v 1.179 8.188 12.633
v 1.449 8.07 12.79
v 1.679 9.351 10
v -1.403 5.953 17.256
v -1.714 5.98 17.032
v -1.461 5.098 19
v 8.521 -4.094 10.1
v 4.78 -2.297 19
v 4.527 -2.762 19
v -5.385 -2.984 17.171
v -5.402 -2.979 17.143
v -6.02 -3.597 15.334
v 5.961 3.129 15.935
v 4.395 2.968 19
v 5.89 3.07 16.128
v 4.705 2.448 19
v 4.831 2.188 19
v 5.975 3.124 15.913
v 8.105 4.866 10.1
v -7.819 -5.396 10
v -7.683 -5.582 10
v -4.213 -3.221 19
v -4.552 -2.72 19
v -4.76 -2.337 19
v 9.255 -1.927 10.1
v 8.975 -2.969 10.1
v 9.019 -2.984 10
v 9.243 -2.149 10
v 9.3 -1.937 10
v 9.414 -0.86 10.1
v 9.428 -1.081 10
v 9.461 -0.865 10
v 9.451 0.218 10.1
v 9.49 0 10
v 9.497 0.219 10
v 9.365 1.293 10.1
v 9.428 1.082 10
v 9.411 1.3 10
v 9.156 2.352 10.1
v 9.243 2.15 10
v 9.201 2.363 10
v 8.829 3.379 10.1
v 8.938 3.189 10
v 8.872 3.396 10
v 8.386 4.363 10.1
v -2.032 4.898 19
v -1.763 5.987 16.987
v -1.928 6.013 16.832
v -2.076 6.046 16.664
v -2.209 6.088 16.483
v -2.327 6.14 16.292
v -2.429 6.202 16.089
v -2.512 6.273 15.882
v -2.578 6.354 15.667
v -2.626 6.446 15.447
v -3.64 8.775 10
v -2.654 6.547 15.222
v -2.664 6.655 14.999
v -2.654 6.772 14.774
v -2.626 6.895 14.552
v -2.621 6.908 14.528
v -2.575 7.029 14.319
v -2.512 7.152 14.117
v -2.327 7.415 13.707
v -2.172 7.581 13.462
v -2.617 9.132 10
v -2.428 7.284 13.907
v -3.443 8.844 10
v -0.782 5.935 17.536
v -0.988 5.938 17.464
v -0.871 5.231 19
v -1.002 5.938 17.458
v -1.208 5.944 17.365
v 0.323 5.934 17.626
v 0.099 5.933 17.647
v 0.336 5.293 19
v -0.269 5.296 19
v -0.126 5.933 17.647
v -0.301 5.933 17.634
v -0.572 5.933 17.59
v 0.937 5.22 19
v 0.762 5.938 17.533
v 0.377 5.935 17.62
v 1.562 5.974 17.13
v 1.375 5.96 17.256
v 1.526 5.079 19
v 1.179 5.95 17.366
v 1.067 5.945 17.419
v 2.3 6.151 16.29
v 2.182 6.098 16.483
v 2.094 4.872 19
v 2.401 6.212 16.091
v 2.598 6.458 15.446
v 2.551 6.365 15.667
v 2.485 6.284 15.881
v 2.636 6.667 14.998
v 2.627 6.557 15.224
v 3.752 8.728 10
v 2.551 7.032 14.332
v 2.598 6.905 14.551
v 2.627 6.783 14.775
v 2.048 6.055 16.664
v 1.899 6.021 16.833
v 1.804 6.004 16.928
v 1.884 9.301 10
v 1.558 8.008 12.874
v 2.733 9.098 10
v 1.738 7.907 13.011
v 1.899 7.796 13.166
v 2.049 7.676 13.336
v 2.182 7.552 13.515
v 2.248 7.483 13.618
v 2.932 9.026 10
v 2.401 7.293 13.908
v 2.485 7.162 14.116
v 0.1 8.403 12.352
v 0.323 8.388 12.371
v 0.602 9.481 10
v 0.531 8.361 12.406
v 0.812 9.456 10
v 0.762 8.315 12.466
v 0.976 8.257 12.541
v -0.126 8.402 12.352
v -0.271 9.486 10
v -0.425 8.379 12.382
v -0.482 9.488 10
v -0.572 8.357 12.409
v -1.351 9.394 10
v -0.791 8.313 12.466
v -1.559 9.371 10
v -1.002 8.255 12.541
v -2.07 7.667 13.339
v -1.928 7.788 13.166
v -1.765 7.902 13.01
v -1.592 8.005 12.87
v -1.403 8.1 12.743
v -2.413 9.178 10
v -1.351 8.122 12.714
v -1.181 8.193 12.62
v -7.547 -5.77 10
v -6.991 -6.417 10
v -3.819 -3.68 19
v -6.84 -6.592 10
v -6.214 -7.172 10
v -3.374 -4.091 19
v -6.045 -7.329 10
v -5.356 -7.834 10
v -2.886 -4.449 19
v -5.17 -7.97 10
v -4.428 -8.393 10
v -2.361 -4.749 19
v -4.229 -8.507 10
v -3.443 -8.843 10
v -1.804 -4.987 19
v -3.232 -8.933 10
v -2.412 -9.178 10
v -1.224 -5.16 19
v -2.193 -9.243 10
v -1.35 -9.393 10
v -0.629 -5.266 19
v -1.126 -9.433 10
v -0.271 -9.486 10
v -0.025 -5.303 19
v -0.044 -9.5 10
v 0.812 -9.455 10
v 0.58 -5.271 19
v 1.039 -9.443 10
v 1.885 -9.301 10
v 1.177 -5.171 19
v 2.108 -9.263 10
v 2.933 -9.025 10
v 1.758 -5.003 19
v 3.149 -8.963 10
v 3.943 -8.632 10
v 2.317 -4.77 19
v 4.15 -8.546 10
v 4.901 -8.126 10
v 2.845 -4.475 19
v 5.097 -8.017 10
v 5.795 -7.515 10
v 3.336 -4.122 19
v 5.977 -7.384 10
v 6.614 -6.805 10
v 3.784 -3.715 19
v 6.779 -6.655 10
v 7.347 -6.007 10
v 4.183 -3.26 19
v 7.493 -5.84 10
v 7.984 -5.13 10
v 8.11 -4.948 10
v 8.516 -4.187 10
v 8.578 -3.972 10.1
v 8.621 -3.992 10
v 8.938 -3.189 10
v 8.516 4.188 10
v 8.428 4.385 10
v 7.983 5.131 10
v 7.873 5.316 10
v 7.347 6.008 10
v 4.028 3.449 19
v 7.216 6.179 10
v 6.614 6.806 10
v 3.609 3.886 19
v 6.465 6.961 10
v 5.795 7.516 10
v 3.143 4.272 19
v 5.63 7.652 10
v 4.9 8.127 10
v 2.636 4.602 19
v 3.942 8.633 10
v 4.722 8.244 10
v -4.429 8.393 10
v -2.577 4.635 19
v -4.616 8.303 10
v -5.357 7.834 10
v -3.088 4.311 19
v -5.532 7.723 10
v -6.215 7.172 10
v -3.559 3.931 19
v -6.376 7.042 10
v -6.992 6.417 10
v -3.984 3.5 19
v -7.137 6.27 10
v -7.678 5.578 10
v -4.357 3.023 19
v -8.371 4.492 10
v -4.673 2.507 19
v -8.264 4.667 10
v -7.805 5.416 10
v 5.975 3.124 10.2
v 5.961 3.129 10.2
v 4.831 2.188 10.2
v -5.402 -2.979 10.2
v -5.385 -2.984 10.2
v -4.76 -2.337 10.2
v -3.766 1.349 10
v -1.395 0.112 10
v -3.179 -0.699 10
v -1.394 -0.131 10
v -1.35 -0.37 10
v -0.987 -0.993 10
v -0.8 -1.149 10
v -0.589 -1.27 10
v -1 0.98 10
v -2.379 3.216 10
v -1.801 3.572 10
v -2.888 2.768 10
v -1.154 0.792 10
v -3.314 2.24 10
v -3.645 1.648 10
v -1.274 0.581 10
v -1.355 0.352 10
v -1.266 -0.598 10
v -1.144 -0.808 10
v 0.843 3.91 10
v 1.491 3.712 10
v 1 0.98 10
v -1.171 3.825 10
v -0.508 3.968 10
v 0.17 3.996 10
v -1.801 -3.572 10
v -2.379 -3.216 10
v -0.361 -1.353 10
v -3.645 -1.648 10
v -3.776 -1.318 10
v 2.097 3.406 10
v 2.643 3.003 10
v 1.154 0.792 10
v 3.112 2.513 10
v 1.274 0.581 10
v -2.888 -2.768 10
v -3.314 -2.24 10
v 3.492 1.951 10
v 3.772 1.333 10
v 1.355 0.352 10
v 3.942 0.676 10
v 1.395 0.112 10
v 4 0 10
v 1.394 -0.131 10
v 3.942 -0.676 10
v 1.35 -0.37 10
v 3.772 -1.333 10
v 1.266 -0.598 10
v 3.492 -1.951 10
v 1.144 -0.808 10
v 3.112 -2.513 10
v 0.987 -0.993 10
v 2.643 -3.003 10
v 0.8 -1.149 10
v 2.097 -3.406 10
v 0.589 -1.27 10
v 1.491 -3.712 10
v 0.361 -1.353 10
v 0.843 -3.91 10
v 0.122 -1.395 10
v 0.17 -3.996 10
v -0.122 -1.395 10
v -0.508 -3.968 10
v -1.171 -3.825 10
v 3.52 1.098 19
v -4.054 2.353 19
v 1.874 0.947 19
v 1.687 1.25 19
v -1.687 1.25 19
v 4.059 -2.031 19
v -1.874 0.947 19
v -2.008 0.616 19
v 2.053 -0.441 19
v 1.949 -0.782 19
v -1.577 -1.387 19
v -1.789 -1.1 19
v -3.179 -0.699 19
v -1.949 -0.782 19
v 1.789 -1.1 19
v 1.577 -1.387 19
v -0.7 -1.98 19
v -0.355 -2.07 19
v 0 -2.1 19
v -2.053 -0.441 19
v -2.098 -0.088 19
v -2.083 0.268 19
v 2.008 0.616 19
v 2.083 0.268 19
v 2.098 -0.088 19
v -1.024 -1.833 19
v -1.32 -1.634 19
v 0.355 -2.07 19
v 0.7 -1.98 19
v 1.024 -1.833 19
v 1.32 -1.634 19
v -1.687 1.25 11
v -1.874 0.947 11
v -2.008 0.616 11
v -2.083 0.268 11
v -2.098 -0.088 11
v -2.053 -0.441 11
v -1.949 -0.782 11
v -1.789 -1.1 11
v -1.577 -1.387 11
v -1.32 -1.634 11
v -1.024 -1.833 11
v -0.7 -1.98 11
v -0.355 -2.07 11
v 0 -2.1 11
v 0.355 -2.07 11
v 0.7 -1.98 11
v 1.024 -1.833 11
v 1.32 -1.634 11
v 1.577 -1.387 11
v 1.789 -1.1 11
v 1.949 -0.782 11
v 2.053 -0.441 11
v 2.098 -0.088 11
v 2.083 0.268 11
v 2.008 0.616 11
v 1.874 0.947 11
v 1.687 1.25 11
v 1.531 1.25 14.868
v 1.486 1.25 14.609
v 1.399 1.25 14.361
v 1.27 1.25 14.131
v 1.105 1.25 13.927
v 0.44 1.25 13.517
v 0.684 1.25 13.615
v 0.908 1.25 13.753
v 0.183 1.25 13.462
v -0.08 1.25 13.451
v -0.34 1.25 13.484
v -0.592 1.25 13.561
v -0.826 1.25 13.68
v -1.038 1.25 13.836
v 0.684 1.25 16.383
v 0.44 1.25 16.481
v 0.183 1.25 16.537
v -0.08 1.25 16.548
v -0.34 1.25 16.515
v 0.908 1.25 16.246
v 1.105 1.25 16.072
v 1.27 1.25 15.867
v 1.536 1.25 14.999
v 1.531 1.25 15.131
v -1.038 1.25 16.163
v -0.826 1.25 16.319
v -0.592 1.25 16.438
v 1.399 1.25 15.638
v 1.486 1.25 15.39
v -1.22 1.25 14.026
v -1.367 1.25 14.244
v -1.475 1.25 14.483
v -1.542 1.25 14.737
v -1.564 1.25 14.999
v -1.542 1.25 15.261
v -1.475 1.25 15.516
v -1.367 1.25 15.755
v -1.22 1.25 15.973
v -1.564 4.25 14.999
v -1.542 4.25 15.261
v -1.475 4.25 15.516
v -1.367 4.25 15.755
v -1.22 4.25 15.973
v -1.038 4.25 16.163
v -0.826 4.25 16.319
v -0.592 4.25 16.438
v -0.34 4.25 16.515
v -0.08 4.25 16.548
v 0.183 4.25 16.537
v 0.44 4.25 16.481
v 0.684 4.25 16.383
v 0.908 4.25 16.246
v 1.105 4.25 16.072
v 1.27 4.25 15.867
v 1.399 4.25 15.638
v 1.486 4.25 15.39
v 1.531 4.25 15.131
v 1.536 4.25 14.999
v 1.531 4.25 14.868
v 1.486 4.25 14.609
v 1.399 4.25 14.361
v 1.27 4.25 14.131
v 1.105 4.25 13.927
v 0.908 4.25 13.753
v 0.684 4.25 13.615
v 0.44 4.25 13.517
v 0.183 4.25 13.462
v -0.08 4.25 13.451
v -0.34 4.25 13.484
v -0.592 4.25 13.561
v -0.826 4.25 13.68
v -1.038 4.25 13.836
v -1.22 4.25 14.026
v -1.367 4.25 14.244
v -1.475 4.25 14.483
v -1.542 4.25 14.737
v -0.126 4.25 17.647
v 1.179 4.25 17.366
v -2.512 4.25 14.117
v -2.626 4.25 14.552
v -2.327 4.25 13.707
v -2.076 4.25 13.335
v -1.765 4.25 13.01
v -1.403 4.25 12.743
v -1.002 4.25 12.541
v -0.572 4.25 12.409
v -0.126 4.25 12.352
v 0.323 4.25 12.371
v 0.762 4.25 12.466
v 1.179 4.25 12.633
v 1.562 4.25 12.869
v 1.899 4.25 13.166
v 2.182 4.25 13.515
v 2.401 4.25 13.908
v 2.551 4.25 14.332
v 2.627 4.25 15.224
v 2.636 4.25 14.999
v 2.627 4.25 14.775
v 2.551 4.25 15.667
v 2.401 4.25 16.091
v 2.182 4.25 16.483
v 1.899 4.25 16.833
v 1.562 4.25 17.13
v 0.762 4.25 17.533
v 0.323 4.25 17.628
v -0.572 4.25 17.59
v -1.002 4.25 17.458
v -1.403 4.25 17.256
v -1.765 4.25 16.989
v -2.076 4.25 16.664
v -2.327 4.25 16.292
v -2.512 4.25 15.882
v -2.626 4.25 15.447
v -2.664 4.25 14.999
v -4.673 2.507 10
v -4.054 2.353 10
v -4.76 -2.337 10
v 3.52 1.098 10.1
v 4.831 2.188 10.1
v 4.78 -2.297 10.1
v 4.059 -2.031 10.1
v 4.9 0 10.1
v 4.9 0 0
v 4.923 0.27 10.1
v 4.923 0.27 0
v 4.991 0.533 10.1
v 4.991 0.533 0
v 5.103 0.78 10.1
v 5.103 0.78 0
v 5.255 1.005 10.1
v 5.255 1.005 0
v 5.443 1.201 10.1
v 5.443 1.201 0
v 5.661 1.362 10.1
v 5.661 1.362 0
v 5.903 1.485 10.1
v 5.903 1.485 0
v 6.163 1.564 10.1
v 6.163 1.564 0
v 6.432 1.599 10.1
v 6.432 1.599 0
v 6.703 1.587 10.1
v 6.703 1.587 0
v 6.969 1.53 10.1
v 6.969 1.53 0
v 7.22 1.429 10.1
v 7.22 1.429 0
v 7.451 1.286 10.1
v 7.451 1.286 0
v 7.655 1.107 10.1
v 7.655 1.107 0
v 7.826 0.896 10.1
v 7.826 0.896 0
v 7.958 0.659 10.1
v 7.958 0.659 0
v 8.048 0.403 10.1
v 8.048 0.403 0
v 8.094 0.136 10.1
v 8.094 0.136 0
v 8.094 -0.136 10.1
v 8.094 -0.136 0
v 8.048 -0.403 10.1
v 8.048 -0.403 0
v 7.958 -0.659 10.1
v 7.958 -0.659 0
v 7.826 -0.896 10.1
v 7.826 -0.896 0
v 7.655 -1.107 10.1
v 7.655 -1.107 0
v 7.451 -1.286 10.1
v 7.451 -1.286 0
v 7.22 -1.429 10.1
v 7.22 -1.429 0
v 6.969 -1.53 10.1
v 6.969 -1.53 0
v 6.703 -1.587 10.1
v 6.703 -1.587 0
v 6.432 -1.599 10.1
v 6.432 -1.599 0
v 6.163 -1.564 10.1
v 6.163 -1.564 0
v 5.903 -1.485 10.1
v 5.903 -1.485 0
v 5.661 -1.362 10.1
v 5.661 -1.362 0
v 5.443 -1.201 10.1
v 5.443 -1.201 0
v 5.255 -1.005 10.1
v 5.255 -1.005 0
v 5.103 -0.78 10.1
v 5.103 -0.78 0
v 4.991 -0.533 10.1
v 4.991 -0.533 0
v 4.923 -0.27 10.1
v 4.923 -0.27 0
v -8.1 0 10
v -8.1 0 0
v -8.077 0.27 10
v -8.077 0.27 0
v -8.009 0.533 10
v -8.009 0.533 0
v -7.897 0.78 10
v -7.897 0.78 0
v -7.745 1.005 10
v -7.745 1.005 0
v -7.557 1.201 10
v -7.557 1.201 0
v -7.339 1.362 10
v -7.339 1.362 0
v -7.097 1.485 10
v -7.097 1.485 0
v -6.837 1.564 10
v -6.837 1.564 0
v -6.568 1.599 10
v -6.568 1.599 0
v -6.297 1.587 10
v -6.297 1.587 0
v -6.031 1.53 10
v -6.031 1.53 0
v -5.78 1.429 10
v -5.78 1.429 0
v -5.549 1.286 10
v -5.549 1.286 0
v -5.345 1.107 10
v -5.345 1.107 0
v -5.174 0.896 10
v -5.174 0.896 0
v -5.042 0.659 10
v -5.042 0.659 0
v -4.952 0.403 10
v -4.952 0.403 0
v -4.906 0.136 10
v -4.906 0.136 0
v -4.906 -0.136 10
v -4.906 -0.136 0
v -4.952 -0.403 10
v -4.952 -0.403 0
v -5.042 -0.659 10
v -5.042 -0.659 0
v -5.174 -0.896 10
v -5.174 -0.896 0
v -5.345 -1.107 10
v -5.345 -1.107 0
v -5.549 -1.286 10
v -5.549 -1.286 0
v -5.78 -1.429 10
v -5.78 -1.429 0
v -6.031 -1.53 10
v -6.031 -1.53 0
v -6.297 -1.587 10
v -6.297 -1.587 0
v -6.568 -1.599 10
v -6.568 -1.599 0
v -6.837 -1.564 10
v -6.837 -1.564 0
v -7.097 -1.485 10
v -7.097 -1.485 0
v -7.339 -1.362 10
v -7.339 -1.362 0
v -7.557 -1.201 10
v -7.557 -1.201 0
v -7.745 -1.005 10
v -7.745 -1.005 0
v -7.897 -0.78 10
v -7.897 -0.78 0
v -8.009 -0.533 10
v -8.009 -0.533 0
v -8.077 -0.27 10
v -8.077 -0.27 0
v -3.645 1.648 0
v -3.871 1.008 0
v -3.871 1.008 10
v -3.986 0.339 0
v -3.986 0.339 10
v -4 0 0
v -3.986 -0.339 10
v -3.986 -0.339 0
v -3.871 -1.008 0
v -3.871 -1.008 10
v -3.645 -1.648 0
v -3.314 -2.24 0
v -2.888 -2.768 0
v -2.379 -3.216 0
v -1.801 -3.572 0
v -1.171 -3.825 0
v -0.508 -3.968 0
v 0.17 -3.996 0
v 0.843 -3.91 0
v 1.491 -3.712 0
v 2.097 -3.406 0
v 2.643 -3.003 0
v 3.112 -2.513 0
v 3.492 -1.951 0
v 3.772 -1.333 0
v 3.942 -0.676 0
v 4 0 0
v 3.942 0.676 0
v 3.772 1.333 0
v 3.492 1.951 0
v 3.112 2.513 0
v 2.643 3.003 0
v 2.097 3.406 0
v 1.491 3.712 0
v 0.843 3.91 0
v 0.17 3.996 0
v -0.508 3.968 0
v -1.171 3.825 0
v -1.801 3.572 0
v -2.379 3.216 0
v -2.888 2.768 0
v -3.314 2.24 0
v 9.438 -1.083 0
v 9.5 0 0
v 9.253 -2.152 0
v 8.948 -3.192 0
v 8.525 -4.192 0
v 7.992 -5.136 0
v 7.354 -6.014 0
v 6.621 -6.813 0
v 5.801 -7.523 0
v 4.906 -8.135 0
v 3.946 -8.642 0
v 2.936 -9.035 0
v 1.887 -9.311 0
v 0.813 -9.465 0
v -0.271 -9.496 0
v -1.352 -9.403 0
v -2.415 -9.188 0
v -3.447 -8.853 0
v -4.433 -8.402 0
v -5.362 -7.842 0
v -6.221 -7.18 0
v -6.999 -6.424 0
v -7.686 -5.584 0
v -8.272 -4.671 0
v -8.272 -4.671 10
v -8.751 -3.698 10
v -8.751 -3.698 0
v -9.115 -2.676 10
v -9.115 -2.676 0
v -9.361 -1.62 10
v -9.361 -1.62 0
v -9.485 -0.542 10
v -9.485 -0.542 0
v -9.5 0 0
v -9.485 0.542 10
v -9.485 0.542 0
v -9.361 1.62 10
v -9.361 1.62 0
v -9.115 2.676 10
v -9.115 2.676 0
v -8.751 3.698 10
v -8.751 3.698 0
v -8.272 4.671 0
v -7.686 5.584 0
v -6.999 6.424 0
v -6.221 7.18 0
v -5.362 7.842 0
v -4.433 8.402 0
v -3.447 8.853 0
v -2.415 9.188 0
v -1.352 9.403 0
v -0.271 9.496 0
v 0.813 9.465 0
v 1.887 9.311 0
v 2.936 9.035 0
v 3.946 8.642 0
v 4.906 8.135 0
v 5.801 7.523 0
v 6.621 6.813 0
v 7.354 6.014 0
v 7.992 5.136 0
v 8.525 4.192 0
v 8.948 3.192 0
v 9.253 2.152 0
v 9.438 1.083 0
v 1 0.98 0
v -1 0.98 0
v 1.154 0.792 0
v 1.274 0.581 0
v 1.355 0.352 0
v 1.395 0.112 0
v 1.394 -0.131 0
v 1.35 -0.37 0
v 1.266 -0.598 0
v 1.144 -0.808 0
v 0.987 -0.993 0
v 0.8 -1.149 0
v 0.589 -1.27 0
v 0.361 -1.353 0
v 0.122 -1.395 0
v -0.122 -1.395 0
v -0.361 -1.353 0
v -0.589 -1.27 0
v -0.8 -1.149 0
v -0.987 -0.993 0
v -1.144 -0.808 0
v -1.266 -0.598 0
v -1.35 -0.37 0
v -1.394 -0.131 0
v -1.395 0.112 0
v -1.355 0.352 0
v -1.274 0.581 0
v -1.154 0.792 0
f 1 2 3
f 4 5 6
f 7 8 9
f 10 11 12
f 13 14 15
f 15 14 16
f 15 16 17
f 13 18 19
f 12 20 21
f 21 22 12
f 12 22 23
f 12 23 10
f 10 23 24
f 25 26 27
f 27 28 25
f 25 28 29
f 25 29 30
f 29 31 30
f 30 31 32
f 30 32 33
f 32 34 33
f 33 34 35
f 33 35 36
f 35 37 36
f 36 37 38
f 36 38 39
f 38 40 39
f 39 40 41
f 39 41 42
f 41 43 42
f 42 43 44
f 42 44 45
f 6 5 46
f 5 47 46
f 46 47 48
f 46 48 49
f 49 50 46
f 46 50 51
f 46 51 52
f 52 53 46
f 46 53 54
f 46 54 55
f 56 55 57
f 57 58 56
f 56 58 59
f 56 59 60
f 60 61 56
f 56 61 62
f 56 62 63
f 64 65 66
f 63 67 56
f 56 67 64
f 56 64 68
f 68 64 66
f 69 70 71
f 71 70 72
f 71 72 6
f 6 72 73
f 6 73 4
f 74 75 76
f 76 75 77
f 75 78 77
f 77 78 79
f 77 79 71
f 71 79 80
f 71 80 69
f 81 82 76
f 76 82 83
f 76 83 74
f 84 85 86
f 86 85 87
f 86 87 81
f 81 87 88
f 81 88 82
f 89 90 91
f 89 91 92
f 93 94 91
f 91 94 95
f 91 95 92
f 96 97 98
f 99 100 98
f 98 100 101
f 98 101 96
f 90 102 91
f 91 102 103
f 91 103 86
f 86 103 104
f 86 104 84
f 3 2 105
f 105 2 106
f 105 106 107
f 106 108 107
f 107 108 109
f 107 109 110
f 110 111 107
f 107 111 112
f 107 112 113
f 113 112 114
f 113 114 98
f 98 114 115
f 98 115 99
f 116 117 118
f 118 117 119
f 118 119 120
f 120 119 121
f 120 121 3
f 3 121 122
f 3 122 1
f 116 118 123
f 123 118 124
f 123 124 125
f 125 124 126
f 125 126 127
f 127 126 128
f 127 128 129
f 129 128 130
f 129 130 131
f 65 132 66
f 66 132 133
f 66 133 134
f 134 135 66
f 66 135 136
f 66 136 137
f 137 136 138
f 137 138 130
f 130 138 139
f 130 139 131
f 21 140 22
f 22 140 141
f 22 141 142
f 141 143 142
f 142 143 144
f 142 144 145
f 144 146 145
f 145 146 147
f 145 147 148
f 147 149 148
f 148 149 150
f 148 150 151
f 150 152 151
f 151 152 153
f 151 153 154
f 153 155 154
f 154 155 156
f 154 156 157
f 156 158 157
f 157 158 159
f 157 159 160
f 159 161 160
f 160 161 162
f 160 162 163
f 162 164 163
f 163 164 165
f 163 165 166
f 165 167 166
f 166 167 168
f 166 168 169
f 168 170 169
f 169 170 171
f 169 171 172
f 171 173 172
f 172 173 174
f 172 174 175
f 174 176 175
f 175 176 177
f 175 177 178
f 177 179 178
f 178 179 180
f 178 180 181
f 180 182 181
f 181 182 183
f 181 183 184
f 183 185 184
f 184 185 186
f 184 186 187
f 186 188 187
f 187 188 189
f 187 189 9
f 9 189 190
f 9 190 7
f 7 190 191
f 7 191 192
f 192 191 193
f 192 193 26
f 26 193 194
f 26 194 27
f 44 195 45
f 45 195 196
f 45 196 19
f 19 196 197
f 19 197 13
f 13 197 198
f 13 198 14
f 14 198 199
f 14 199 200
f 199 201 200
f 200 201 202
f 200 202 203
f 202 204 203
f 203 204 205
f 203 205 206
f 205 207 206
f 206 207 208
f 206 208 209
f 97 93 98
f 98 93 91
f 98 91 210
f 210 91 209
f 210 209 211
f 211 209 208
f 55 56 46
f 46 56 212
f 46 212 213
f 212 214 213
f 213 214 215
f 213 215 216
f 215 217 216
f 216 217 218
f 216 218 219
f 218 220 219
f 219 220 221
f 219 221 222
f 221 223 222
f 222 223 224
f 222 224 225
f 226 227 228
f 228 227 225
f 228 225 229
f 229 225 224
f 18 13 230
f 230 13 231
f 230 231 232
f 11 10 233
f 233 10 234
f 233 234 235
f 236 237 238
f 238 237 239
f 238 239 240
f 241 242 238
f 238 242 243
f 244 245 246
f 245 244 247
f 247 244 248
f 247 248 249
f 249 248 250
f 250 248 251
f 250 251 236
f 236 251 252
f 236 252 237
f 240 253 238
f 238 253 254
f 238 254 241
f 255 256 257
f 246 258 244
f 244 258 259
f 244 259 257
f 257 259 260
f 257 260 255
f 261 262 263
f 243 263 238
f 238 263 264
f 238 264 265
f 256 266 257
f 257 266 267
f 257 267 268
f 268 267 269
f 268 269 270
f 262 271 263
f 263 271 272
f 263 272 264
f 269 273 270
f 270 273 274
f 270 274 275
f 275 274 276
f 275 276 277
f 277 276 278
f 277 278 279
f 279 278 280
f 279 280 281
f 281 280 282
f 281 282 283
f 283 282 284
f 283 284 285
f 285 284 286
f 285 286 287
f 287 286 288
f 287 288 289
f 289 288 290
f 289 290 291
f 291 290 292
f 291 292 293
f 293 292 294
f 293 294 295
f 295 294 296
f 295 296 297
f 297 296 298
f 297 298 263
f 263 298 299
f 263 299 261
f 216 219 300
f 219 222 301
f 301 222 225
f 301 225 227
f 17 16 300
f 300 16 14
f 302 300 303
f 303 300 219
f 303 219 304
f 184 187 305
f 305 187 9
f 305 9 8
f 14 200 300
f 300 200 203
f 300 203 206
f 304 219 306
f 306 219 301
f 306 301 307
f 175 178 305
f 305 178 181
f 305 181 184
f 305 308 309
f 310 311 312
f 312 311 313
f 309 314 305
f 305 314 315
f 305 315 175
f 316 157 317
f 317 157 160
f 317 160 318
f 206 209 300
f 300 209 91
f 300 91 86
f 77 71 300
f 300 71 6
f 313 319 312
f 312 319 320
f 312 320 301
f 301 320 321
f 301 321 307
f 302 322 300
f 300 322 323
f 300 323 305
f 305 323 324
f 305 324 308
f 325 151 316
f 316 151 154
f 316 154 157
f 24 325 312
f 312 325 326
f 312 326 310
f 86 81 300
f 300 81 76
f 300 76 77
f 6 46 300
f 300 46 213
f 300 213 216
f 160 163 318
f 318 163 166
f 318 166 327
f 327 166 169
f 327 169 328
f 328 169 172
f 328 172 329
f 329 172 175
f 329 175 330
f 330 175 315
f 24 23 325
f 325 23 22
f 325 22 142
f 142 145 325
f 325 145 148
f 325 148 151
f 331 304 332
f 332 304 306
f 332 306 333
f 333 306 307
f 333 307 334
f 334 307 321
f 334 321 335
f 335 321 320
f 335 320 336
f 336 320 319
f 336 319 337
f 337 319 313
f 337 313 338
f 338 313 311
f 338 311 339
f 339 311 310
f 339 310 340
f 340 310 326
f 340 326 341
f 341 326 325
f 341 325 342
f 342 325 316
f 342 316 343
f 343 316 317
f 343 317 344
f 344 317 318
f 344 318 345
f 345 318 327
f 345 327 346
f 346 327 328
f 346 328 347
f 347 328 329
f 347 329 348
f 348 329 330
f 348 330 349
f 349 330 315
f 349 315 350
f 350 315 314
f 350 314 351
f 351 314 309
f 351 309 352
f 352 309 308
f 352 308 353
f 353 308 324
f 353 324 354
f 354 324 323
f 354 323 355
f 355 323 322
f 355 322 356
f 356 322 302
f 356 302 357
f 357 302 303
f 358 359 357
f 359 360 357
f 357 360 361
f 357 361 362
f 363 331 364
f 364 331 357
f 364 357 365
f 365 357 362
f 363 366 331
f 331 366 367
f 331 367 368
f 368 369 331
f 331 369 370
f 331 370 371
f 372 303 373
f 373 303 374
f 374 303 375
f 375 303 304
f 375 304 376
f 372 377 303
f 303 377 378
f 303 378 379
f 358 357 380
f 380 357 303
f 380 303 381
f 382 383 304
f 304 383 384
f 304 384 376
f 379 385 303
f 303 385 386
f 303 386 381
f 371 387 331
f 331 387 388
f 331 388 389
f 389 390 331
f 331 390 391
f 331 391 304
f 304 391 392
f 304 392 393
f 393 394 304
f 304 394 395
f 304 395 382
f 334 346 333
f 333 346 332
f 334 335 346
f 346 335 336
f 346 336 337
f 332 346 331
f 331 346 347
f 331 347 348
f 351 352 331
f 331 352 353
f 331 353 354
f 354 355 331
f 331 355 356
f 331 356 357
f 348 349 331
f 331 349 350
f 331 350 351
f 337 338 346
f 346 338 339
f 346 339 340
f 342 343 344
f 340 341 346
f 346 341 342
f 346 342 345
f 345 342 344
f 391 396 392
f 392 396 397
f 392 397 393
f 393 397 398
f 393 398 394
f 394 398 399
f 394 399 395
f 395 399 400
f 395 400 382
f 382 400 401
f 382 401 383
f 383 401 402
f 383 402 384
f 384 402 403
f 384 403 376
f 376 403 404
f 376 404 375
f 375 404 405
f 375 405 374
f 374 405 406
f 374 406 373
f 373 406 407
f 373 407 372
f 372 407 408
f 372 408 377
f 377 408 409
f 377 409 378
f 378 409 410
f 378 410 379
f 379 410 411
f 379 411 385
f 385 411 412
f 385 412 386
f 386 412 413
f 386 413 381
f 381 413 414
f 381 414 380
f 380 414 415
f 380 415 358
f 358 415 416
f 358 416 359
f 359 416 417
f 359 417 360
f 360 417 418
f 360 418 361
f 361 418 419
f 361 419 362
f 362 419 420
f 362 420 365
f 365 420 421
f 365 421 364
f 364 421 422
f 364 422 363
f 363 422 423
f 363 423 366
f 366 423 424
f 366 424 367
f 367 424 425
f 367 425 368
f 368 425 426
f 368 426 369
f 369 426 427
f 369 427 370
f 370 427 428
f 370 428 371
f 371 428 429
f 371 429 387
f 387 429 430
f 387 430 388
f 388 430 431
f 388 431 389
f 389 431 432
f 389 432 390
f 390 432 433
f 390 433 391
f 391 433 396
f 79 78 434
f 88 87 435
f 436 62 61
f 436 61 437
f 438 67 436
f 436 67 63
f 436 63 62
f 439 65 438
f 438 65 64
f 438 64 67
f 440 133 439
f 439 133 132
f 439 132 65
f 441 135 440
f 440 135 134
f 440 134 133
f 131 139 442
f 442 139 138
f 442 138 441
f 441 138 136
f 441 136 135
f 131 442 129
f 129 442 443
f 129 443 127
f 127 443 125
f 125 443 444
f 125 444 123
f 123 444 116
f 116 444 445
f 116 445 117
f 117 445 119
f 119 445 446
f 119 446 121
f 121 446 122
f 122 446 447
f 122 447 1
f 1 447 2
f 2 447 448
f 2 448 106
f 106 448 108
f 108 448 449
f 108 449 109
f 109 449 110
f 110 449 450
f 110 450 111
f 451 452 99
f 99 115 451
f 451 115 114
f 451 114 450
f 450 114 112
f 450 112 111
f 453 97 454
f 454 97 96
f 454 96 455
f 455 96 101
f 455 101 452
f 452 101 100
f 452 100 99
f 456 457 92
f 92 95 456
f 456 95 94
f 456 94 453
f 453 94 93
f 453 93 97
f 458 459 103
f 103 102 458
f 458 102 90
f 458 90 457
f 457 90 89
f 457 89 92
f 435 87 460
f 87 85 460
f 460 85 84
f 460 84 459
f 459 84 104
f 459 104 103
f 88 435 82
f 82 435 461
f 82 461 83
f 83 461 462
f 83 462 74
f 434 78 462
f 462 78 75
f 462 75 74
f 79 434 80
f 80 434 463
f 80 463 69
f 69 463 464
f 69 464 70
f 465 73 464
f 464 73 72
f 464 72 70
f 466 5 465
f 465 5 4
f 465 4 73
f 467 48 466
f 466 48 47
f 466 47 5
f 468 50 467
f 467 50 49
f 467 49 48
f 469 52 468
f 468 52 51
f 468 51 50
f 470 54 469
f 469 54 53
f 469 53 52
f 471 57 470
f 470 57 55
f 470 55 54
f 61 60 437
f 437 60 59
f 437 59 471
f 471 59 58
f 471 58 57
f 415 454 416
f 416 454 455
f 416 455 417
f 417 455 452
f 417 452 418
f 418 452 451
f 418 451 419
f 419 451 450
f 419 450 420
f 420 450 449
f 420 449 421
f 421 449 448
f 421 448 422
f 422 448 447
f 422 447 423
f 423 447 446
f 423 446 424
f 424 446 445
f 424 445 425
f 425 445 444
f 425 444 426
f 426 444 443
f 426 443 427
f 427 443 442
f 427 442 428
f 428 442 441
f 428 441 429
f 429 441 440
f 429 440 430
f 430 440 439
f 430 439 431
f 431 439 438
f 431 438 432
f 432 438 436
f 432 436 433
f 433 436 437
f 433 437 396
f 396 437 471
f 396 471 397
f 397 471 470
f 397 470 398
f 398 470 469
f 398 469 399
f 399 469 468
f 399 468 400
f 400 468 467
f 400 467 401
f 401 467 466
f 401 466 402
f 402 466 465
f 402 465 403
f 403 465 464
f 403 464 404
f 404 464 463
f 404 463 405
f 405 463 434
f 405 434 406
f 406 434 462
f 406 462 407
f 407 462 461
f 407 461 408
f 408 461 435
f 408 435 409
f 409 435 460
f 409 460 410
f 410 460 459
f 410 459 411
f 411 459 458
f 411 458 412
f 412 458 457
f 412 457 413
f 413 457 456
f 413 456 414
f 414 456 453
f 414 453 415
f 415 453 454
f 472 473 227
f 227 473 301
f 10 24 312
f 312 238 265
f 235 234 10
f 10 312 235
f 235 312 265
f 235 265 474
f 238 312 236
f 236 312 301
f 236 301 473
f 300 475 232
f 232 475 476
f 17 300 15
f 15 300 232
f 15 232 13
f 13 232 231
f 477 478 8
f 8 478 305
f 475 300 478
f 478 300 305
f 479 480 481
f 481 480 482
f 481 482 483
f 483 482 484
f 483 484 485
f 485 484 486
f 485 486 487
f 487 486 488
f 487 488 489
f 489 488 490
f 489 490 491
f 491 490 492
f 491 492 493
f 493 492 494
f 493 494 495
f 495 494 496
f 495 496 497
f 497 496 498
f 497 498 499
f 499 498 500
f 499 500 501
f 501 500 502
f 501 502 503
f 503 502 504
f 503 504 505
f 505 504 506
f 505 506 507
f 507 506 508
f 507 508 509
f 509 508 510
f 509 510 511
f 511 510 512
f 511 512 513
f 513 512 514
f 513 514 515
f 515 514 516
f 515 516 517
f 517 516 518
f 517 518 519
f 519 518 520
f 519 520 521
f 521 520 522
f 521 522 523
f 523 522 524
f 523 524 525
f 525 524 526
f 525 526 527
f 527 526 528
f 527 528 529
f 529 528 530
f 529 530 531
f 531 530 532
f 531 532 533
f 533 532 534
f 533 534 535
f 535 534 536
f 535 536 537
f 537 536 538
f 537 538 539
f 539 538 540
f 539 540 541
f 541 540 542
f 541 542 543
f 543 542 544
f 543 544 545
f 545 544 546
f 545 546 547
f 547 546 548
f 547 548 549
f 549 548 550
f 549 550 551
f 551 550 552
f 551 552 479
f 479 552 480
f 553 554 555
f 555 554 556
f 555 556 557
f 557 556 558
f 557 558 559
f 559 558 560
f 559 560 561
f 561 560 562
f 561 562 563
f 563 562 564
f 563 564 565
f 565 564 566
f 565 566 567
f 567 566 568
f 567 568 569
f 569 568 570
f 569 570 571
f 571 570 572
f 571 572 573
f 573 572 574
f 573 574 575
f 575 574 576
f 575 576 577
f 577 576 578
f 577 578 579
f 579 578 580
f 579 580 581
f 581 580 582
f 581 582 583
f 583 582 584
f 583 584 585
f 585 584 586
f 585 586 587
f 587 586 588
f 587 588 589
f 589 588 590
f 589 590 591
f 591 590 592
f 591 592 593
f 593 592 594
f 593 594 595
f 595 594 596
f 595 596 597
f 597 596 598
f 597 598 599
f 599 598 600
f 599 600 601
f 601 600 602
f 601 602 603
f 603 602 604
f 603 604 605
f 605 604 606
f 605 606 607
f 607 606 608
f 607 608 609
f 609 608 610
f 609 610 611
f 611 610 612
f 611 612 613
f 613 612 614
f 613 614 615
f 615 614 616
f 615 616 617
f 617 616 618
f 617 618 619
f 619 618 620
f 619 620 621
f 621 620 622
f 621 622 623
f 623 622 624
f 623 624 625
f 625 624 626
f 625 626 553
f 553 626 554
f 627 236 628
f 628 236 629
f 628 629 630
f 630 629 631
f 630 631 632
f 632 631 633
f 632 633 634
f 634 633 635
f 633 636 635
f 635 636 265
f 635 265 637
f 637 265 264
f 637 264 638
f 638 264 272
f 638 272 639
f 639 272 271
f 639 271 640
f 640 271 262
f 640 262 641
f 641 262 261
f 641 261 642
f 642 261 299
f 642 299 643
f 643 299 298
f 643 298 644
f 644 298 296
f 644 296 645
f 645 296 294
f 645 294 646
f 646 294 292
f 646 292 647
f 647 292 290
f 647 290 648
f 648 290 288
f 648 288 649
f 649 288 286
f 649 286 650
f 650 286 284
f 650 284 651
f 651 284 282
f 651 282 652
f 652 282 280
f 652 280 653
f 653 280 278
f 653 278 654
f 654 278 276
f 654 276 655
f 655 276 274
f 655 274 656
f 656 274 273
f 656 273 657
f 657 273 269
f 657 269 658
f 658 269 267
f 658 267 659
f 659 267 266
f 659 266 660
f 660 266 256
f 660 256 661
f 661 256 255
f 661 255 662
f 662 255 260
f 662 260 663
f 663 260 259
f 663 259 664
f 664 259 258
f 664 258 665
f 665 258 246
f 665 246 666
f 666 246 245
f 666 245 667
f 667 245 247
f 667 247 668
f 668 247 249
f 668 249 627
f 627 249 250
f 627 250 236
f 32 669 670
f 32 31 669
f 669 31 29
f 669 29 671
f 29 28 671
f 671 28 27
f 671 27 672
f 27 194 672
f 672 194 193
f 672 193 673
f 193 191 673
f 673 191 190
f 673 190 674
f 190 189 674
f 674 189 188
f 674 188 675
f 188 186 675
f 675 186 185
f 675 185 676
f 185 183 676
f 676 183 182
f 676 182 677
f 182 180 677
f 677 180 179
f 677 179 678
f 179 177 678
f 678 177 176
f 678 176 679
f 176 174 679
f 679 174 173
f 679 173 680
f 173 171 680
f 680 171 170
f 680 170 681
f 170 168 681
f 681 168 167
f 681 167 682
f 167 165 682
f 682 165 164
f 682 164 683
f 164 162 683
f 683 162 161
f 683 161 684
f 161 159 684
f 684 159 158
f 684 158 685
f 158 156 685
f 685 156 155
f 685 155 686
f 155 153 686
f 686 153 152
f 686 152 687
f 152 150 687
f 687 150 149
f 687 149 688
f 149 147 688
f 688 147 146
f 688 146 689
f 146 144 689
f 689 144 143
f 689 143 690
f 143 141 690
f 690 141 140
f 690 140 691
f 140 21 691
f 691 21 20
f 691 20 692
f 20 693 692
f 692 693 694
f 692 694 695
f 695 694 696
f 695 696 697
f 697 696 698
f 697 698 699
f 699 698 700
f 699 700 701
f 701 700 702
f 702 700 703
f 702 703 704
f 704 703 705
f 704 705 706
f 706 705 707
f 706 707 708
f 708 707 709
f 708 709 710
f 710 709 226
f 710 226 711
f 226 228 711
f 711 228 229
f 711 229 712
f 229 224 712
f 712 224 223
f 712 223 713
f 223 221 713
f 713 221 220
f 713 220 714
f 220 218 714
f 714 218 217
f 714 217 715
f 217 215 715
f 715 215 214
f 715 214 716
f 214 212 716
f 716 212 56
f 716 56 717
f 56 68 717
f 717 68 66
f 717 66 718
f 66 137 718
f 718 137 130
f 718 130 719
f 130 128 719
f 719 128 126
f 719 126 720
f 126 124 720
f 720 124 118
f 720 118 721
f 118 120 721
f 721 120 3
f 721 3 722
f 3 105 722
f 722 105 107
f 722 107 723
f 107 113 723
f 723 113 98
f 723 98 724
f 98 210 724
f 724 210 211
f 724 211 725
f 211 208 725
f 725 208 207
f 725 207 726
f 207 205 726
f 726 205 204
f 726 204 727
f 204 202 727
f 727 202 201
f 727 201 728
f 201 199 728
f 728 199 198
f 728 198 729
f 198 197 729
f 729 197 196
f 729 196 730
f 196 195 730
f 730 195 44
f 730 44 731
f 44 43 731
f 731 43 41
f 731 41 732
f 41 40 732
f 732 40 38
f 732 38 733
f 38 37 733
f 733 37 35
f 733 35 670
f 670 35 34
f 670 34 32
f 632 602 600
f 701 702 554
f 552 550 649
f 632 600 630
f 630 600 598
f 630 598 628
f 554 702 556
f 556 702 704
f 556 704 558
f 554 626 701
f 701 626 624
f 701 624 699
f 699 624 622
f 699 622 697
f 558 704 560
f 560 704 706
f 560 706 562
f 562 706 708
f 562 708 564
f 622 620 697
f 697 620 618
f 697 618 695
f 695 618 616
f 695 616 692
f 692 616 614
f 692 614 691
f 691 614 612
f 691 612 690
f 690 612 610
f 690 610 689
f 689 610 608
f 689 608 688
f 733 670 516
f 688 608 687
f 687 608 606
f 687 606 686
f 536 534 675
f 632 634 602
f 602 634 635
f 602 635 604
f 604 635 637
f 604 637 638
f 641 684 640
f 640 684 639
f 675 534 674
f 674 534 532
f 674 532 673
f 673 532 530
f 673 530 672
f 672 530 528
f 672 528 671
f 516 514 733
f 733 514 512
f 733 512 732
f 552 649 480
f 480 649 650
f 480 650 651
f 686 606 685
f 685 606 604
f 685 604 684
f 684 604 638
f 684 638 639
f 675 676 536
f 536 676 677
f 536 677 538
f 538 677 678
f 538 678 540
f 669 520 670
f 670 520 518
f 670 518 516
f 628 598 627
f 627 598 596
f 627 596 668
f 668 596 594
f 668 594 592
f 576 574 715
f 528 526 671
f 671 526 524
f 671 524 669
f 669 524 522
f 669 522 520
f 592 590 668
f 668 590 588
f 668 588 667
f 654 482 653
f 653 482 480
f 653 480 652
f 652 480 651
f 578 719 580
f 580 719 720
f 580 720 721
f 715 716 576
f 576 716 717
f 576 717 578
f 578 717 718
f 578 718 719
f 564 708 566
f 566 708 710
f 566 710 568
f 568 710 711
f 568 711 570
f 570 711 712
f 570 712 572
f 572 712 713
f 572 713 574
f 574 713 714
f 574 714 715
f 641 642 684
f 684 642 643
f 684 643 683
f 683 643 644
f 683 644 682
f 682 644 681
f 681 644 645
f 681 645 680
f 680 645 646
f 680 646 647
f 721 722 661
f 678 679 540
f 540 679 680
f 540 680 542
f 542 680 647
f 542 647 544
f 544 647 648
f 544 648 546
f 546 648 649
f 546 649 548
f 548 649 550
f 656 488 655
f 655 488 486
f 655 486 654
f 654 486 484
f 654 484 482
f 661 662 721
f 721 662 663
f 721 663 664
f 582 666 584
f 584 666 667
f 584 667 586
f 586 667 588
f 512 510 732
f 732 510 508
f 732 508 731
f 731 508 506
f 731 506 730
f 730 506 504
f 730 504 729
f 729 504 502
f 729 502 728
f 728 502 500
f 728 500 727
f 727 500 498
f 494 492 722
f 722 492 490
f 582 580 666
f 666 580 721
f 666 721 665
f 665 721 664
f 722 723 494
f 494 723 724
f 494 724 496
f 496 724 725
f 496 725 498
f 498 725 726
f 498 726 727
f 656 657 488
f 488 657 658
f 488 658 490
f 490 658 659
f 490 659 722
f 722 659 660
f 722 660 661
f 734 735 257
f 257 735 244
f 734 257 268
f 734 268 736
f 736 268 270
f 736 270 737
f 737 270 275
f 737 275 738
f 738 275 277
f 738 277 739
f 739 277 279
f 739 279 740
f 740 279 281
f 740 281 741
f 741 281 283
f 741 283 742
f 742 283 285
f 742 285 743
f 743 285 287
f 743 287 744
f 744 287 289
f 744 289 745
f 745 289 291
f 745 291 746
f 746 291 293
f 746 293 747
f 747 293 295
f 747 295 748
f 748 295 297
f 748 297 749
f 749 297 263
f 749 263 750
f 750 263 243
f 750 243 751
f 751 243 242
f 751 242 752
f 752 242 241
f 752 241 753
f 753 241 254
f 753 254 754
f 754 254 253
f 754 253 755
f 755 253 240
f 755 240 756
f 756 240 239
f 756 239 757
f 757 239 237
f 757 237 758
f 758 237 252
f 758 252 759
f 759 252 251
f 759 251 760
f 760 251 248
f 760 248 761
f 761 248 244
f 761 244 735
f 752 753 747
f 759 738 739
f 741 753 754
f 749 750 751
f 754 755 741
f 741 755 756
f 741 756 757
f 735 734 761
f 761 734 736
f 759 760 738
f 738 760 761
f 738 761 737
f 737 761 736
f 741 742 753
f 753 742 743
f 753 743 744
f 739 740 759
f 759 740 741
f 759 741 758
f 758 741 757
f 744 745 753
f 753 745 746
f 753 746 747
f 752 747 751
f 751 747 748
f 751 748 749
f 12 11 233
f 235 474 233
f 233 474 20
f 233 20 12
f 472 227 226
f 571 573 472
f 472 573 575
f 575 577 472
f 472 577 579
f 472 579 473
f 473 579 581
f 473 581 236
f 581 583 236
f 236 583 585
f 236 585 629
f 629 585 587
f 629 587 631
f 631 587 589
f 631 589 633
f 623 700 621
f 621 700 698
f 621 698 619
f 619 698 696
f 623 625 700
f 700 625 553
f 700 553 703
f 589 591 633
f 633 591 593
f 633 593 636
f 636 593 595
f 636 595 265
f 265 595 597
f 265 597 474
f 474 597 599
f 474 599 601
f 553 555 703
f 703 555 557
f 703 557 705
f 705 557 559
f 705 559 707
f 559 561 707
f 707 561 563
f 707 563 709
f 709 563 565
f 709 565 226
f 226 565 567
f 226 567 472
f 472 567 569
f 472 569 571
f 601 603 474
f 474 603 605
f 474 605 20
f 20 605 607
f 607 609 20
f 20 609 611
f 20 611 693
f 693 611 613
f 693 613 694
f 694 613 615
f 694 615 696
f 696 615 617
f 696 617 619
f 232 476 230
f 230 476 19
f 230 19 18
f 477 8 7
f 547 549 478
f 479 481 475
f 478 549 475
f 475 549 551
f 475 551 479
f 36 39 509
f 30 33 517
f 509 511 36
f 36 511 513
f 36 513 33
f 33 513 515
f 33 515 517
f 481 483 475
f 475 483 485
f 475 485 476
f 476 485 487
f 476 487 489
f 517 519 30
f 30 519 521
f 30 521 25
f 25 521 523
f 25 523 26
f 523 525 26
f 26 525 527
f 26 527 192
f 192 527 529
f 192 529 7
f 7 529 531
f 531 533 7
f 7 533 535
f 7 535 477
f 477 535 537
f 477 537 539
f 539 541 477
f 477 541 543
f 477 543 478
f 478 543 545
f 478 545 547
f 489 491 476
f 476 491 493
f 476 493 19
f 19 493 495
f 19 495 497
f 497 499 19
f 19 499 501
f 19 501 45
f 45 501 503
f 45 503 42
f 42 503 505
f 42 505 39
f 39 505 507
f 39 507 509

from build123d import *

# Parameters (mm, degrees)
ESBO_O2_R                   = 9.5
RESSALTO_EXTRUS_O3_DEPTH    = 9
RESSALTO_EXTRUS_O3_TAPER    = 25
CORTE_EXTRUS_O1_DEPTH       = 8
CORTE_EXTRUS_O4_DEPTH       = 10
CORTE_EXTRUS_O4_DEPTH_BACK  = 8
ESBO_O12_R                  = 1.55
CORTE_EXTRUS_O5_DEPTH       = 5
CORTE_EXTRUS_O5_DEPTH_BACK  = 8
ESBO_O20_R                  = 2.65
CORTE_EXTRUS_O6_DEPTH       = 9.8
CORTE_EXTRUS_O6_DEPTH_BACK  = 10
ESBO_O36_R                  = 1.6
CORTE_EXTRUS_O8_DEPTH       = 10
RESSALTO_EXTRUS_O4_START    = 10
ESBO_O36_3_R                = 9.5
ESBO_O36_3_R_2              = 1.6
ESBO_O36_3_R_3              = 4
RESSALTO_EXTRUS_O4_DEPTH    = 10
CORTE_EXTRUS_O10_DEPTH      = 10
CORTE_EXTRUS_O10_DEPTH_BACK = 9.9
CORTE_EXTRUS_O11_DEPTH      = 9.9
CORTE_EXTRUS_O11_DEPTH_BACK = 9.9


with BuildPart() as part:
    # Esboço2 → Ressalto-extrusão3 (new body)
    with BuildSketch(Plane.XY.offset(10)):
        Circle(ESBO_O2_R)
    extrude(amount=RESSALTO_EXTRUS_O3_DEPTH, taper=RESSALTO_EXTRUS_O3_TAPER)

    # Esboço8 → Corte-extrusão1 (cut)
    with BuildSketch(Plane.XY.offset(19)):
        with BuildLine():
            ThreePointArc((-1.687453703, 1.25), (0, -2.1), (1.687453703, 1.25))
            Line((1.687453703, 1.25), (-1.687453703, 1.25))
        make_face()
    extrude(amount=-CORTE_EXTRUS_O1_DEPTH, mode=Mode.SUBTRACT)

    # Esboço12 → Corte-extrusão4 (cut, two sides: drawn at the far end of the back side and taken through both)
    with BuildSketch(Plane(origin=(0, 9.25, 0), x_dir=(-1, 0, 0), z_dir=(0, -1, 0)).offset(-CORTE_EXTRUS_O4_DEPTH_BACK)):
        with Locations((0.013800593, -14.999427624)):
            Circle(ESBO_O12_R)
    extrude(amount=CORTE_EXTRUS_O4_DEPTH + CORTE_EXTRUS_O4_DEPTH_BACK, mode=Mode.SUBTRACT)

    # Esboço20 → Corte-extrusão5 (cut, two sides: drawn at the far end of the back side and taken through both)
    with BuildSketch(Plane(origin=(0, 9.25, 0), x_dir=(-1, 0, 0), z_dir=(0, -1, 0)).offset(-CORTE_EXTRUS_O5_DEPTH_BACK)):
        with Locations((0.013800593, -14.999427624)):
            Circle(ESBO_O20_R)
    extrude(amount=CORTE_EXTRUS_O5_DEPTH + CORTE_EXTRUS_O5_DEPTH_BACK, mode=Mode.SUBTRACT)

    # Esboço25 → Corte-extrusão6 (cut, two sides: drawn at the far end of the back side and taken through both)
    with BuildSketch(Plane(origin=(0, 0, 20), x_dir=(-1, 0, 0), z_dir=(0, 0, -1)).offset(-CORTE_EXTRUS_O6_DEPTH_BACK)):
        Polygon((7.134775628, 3.121360799), (4.053715986, 2.352982757), (3.178621068, -0.699482185), (5.384585793, -2.983569084), (8.465645436, -2.215191043), (9.340740353, 0.837273899), align=None)
        Polygon((-5.961169976, 3.129376222), (-8.940704294, 2.0313286), (-9.479534318, -1.098047621), (-7.038830024, -3.129376222), (-4.059295706, -2.0313286), (-3.520465682, 1.098047621), align=None)
    extrude(amount=CORTE_EXTRUS_O6_DEPTH + CORTE_EXTRUS_O6_DEPTH_BACK, mode=Mode.SUBTRACT)

    # Esboço36 → Corte-extrusão8 (cut)
    with BuildSketch(Plane(origin=(0, 0, 10), x_dir=(-1, 0, 0), z_dir=(0, 0, -1))):
        with Locations((-6.5, 0)):
            Circle(ESBO_O36_R)
        with Locations((6.5, 0)):
            Circle(ESBO_O36_R)
    extrude(amount=-CORTE_EXTRUS_O8_DEPTH, mode=Mode.SUBTRACT)

    # Esboço36<3> → Ressalto-extrusão4 (add)
    # profile 1 of 2: a face of its own
    with BuildSketch(Plane(origin=(0, 0, 10), x_dir=(-1, 0, 0), z_dir=(0, 0, -1)).offset(RESSALTO_EXTRUS_O4_START)):
        Circle(ESBO_O36_3_R)
        with Locations((-6.5, 0)):
            Circle(ESBO_O36_3_R_2, mode=Mode.SUBTRACT)
        Circle(ESBO_O36_3_R_3, mode=Mode.SUBTRACT)
        with Locations((6.5, 0)):
            Circle(ESBO_O36_3_R_2, mode=Mode.SUBTRACT)
    # profile 2 of 2: a face of its own
    with BuildSketch(Plane(origin=(0, 0, 10), x_dir=(-1, 0, 0), z_dir=(0, 0, -1)).offset(RESSALTO_EXTRUS_O4_START)):
        with BuildLine():
            Line((0.99979998, 0.98), (-0.99979998, 0.98))
            ThreePointArc((-0.99979998, 0.98), (0, -1.4), (0.99979998, 0.98))
        make_face()
    extrude(amount=-RESSALTO_EXTRUS_O4_DEPTH)

    # Esboço49 → Corte-extrusão10 (cut, two sides: drawn at the far end of the back side and taken through both)
    with BuildSketch(Plane(origin=(0, 0, 20), x_dir=(-1, 0, 0), z_dir=(0, 0, -1)).offset(-CORTE_EXTRUS_O10_DEPTH_BACK)):
        with BuildLine():
            Line((8.371054684, 4.491708302), (4.673014458, 2.507428111))
            Line((4.673014458, 2.507428111), (4.053715986, 2.352982757))
            Line((4.053715986, 2.352982757), (3.178621068, -0.699482185))
            Line((3.178621068, -0.699482185), (4.760398724, -2.337277014))
            Line((4.760398724, -2.337277014), (7.818914356, -5.395792647))
            ThreePointArc((7.818914356, -5.395792647), (9.069996868, -2.825801976), (9.5, 0))
            ThreePointArc((9.5, 0), (9.213441797, 2.31570513), (8.371054684, 4.491708302))
        make_face()
    extrude(amount=CORTE_EXTRUS_O10_DEPTH + CORTE_EXTRUS_O10_DEPTH_BACK, mode=Mode.SUBTRACT)

    # Esboço49<4> → Corte-extrusão11 (cut, two sides: drawn at the far end of the back side and taken through both)
    with BuildSketch(Plane(origin=(0, 0, 20), x_dir=(-1, 0, 0), z_dir=(0, 0, -1)).offset(-CORTE_EXTRUS_O11_DEPTH_BACK)):
        with BuildLine():
            Line((-3.520465682, 1.098047621), (-4.830623712, 2.188454798))
            Line((-4.830623712, 2.188454798), (-8.141518287, 4.89547546))
            ThreePointArc((-8.141518287, 4.89547546), (-9.48963755, 0.443597976), (-8.562700205, -4.114628197))
            Line((-8.562700205, -4.114628197), (-4.779997666, -2.296928855))
            Line((-4.779997666, -2.296928855), (-4.059295706, -2.0313286))
            Line((-4.059295706, -2.0313286), (-3.520465682, 1.098047621))
        make_face()
    extrude(amount=CORTE_EXTRUS_O11_DEPTH + CORTE_EXTRUS_O11_DEPTH_BACK, mode=Mode.SUBTRACT)


solid = part.part
